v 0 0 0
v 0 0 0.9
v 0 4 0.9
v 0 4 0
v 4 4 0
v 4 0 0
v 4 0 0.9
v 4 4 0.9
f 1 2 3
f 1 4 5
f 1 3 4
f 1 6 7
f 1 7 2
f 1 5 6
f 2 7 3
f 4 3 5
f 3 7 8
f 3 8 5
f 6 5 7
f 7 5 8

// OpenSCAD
/* Warning, this is a very basic generator with a lot of approximation 
input data : [QFN, FXX, 4x4x0.9mm, 16, , A, C04-00262A]
generated by com.zoubworld.electronics.cad.model3d.Basic
Date : Sun Feb 15 10:50:48 CET 2026
*/

//body
color("black")
translate([0,0,0])
cube([4.0,4.0,0.9], center=false);
